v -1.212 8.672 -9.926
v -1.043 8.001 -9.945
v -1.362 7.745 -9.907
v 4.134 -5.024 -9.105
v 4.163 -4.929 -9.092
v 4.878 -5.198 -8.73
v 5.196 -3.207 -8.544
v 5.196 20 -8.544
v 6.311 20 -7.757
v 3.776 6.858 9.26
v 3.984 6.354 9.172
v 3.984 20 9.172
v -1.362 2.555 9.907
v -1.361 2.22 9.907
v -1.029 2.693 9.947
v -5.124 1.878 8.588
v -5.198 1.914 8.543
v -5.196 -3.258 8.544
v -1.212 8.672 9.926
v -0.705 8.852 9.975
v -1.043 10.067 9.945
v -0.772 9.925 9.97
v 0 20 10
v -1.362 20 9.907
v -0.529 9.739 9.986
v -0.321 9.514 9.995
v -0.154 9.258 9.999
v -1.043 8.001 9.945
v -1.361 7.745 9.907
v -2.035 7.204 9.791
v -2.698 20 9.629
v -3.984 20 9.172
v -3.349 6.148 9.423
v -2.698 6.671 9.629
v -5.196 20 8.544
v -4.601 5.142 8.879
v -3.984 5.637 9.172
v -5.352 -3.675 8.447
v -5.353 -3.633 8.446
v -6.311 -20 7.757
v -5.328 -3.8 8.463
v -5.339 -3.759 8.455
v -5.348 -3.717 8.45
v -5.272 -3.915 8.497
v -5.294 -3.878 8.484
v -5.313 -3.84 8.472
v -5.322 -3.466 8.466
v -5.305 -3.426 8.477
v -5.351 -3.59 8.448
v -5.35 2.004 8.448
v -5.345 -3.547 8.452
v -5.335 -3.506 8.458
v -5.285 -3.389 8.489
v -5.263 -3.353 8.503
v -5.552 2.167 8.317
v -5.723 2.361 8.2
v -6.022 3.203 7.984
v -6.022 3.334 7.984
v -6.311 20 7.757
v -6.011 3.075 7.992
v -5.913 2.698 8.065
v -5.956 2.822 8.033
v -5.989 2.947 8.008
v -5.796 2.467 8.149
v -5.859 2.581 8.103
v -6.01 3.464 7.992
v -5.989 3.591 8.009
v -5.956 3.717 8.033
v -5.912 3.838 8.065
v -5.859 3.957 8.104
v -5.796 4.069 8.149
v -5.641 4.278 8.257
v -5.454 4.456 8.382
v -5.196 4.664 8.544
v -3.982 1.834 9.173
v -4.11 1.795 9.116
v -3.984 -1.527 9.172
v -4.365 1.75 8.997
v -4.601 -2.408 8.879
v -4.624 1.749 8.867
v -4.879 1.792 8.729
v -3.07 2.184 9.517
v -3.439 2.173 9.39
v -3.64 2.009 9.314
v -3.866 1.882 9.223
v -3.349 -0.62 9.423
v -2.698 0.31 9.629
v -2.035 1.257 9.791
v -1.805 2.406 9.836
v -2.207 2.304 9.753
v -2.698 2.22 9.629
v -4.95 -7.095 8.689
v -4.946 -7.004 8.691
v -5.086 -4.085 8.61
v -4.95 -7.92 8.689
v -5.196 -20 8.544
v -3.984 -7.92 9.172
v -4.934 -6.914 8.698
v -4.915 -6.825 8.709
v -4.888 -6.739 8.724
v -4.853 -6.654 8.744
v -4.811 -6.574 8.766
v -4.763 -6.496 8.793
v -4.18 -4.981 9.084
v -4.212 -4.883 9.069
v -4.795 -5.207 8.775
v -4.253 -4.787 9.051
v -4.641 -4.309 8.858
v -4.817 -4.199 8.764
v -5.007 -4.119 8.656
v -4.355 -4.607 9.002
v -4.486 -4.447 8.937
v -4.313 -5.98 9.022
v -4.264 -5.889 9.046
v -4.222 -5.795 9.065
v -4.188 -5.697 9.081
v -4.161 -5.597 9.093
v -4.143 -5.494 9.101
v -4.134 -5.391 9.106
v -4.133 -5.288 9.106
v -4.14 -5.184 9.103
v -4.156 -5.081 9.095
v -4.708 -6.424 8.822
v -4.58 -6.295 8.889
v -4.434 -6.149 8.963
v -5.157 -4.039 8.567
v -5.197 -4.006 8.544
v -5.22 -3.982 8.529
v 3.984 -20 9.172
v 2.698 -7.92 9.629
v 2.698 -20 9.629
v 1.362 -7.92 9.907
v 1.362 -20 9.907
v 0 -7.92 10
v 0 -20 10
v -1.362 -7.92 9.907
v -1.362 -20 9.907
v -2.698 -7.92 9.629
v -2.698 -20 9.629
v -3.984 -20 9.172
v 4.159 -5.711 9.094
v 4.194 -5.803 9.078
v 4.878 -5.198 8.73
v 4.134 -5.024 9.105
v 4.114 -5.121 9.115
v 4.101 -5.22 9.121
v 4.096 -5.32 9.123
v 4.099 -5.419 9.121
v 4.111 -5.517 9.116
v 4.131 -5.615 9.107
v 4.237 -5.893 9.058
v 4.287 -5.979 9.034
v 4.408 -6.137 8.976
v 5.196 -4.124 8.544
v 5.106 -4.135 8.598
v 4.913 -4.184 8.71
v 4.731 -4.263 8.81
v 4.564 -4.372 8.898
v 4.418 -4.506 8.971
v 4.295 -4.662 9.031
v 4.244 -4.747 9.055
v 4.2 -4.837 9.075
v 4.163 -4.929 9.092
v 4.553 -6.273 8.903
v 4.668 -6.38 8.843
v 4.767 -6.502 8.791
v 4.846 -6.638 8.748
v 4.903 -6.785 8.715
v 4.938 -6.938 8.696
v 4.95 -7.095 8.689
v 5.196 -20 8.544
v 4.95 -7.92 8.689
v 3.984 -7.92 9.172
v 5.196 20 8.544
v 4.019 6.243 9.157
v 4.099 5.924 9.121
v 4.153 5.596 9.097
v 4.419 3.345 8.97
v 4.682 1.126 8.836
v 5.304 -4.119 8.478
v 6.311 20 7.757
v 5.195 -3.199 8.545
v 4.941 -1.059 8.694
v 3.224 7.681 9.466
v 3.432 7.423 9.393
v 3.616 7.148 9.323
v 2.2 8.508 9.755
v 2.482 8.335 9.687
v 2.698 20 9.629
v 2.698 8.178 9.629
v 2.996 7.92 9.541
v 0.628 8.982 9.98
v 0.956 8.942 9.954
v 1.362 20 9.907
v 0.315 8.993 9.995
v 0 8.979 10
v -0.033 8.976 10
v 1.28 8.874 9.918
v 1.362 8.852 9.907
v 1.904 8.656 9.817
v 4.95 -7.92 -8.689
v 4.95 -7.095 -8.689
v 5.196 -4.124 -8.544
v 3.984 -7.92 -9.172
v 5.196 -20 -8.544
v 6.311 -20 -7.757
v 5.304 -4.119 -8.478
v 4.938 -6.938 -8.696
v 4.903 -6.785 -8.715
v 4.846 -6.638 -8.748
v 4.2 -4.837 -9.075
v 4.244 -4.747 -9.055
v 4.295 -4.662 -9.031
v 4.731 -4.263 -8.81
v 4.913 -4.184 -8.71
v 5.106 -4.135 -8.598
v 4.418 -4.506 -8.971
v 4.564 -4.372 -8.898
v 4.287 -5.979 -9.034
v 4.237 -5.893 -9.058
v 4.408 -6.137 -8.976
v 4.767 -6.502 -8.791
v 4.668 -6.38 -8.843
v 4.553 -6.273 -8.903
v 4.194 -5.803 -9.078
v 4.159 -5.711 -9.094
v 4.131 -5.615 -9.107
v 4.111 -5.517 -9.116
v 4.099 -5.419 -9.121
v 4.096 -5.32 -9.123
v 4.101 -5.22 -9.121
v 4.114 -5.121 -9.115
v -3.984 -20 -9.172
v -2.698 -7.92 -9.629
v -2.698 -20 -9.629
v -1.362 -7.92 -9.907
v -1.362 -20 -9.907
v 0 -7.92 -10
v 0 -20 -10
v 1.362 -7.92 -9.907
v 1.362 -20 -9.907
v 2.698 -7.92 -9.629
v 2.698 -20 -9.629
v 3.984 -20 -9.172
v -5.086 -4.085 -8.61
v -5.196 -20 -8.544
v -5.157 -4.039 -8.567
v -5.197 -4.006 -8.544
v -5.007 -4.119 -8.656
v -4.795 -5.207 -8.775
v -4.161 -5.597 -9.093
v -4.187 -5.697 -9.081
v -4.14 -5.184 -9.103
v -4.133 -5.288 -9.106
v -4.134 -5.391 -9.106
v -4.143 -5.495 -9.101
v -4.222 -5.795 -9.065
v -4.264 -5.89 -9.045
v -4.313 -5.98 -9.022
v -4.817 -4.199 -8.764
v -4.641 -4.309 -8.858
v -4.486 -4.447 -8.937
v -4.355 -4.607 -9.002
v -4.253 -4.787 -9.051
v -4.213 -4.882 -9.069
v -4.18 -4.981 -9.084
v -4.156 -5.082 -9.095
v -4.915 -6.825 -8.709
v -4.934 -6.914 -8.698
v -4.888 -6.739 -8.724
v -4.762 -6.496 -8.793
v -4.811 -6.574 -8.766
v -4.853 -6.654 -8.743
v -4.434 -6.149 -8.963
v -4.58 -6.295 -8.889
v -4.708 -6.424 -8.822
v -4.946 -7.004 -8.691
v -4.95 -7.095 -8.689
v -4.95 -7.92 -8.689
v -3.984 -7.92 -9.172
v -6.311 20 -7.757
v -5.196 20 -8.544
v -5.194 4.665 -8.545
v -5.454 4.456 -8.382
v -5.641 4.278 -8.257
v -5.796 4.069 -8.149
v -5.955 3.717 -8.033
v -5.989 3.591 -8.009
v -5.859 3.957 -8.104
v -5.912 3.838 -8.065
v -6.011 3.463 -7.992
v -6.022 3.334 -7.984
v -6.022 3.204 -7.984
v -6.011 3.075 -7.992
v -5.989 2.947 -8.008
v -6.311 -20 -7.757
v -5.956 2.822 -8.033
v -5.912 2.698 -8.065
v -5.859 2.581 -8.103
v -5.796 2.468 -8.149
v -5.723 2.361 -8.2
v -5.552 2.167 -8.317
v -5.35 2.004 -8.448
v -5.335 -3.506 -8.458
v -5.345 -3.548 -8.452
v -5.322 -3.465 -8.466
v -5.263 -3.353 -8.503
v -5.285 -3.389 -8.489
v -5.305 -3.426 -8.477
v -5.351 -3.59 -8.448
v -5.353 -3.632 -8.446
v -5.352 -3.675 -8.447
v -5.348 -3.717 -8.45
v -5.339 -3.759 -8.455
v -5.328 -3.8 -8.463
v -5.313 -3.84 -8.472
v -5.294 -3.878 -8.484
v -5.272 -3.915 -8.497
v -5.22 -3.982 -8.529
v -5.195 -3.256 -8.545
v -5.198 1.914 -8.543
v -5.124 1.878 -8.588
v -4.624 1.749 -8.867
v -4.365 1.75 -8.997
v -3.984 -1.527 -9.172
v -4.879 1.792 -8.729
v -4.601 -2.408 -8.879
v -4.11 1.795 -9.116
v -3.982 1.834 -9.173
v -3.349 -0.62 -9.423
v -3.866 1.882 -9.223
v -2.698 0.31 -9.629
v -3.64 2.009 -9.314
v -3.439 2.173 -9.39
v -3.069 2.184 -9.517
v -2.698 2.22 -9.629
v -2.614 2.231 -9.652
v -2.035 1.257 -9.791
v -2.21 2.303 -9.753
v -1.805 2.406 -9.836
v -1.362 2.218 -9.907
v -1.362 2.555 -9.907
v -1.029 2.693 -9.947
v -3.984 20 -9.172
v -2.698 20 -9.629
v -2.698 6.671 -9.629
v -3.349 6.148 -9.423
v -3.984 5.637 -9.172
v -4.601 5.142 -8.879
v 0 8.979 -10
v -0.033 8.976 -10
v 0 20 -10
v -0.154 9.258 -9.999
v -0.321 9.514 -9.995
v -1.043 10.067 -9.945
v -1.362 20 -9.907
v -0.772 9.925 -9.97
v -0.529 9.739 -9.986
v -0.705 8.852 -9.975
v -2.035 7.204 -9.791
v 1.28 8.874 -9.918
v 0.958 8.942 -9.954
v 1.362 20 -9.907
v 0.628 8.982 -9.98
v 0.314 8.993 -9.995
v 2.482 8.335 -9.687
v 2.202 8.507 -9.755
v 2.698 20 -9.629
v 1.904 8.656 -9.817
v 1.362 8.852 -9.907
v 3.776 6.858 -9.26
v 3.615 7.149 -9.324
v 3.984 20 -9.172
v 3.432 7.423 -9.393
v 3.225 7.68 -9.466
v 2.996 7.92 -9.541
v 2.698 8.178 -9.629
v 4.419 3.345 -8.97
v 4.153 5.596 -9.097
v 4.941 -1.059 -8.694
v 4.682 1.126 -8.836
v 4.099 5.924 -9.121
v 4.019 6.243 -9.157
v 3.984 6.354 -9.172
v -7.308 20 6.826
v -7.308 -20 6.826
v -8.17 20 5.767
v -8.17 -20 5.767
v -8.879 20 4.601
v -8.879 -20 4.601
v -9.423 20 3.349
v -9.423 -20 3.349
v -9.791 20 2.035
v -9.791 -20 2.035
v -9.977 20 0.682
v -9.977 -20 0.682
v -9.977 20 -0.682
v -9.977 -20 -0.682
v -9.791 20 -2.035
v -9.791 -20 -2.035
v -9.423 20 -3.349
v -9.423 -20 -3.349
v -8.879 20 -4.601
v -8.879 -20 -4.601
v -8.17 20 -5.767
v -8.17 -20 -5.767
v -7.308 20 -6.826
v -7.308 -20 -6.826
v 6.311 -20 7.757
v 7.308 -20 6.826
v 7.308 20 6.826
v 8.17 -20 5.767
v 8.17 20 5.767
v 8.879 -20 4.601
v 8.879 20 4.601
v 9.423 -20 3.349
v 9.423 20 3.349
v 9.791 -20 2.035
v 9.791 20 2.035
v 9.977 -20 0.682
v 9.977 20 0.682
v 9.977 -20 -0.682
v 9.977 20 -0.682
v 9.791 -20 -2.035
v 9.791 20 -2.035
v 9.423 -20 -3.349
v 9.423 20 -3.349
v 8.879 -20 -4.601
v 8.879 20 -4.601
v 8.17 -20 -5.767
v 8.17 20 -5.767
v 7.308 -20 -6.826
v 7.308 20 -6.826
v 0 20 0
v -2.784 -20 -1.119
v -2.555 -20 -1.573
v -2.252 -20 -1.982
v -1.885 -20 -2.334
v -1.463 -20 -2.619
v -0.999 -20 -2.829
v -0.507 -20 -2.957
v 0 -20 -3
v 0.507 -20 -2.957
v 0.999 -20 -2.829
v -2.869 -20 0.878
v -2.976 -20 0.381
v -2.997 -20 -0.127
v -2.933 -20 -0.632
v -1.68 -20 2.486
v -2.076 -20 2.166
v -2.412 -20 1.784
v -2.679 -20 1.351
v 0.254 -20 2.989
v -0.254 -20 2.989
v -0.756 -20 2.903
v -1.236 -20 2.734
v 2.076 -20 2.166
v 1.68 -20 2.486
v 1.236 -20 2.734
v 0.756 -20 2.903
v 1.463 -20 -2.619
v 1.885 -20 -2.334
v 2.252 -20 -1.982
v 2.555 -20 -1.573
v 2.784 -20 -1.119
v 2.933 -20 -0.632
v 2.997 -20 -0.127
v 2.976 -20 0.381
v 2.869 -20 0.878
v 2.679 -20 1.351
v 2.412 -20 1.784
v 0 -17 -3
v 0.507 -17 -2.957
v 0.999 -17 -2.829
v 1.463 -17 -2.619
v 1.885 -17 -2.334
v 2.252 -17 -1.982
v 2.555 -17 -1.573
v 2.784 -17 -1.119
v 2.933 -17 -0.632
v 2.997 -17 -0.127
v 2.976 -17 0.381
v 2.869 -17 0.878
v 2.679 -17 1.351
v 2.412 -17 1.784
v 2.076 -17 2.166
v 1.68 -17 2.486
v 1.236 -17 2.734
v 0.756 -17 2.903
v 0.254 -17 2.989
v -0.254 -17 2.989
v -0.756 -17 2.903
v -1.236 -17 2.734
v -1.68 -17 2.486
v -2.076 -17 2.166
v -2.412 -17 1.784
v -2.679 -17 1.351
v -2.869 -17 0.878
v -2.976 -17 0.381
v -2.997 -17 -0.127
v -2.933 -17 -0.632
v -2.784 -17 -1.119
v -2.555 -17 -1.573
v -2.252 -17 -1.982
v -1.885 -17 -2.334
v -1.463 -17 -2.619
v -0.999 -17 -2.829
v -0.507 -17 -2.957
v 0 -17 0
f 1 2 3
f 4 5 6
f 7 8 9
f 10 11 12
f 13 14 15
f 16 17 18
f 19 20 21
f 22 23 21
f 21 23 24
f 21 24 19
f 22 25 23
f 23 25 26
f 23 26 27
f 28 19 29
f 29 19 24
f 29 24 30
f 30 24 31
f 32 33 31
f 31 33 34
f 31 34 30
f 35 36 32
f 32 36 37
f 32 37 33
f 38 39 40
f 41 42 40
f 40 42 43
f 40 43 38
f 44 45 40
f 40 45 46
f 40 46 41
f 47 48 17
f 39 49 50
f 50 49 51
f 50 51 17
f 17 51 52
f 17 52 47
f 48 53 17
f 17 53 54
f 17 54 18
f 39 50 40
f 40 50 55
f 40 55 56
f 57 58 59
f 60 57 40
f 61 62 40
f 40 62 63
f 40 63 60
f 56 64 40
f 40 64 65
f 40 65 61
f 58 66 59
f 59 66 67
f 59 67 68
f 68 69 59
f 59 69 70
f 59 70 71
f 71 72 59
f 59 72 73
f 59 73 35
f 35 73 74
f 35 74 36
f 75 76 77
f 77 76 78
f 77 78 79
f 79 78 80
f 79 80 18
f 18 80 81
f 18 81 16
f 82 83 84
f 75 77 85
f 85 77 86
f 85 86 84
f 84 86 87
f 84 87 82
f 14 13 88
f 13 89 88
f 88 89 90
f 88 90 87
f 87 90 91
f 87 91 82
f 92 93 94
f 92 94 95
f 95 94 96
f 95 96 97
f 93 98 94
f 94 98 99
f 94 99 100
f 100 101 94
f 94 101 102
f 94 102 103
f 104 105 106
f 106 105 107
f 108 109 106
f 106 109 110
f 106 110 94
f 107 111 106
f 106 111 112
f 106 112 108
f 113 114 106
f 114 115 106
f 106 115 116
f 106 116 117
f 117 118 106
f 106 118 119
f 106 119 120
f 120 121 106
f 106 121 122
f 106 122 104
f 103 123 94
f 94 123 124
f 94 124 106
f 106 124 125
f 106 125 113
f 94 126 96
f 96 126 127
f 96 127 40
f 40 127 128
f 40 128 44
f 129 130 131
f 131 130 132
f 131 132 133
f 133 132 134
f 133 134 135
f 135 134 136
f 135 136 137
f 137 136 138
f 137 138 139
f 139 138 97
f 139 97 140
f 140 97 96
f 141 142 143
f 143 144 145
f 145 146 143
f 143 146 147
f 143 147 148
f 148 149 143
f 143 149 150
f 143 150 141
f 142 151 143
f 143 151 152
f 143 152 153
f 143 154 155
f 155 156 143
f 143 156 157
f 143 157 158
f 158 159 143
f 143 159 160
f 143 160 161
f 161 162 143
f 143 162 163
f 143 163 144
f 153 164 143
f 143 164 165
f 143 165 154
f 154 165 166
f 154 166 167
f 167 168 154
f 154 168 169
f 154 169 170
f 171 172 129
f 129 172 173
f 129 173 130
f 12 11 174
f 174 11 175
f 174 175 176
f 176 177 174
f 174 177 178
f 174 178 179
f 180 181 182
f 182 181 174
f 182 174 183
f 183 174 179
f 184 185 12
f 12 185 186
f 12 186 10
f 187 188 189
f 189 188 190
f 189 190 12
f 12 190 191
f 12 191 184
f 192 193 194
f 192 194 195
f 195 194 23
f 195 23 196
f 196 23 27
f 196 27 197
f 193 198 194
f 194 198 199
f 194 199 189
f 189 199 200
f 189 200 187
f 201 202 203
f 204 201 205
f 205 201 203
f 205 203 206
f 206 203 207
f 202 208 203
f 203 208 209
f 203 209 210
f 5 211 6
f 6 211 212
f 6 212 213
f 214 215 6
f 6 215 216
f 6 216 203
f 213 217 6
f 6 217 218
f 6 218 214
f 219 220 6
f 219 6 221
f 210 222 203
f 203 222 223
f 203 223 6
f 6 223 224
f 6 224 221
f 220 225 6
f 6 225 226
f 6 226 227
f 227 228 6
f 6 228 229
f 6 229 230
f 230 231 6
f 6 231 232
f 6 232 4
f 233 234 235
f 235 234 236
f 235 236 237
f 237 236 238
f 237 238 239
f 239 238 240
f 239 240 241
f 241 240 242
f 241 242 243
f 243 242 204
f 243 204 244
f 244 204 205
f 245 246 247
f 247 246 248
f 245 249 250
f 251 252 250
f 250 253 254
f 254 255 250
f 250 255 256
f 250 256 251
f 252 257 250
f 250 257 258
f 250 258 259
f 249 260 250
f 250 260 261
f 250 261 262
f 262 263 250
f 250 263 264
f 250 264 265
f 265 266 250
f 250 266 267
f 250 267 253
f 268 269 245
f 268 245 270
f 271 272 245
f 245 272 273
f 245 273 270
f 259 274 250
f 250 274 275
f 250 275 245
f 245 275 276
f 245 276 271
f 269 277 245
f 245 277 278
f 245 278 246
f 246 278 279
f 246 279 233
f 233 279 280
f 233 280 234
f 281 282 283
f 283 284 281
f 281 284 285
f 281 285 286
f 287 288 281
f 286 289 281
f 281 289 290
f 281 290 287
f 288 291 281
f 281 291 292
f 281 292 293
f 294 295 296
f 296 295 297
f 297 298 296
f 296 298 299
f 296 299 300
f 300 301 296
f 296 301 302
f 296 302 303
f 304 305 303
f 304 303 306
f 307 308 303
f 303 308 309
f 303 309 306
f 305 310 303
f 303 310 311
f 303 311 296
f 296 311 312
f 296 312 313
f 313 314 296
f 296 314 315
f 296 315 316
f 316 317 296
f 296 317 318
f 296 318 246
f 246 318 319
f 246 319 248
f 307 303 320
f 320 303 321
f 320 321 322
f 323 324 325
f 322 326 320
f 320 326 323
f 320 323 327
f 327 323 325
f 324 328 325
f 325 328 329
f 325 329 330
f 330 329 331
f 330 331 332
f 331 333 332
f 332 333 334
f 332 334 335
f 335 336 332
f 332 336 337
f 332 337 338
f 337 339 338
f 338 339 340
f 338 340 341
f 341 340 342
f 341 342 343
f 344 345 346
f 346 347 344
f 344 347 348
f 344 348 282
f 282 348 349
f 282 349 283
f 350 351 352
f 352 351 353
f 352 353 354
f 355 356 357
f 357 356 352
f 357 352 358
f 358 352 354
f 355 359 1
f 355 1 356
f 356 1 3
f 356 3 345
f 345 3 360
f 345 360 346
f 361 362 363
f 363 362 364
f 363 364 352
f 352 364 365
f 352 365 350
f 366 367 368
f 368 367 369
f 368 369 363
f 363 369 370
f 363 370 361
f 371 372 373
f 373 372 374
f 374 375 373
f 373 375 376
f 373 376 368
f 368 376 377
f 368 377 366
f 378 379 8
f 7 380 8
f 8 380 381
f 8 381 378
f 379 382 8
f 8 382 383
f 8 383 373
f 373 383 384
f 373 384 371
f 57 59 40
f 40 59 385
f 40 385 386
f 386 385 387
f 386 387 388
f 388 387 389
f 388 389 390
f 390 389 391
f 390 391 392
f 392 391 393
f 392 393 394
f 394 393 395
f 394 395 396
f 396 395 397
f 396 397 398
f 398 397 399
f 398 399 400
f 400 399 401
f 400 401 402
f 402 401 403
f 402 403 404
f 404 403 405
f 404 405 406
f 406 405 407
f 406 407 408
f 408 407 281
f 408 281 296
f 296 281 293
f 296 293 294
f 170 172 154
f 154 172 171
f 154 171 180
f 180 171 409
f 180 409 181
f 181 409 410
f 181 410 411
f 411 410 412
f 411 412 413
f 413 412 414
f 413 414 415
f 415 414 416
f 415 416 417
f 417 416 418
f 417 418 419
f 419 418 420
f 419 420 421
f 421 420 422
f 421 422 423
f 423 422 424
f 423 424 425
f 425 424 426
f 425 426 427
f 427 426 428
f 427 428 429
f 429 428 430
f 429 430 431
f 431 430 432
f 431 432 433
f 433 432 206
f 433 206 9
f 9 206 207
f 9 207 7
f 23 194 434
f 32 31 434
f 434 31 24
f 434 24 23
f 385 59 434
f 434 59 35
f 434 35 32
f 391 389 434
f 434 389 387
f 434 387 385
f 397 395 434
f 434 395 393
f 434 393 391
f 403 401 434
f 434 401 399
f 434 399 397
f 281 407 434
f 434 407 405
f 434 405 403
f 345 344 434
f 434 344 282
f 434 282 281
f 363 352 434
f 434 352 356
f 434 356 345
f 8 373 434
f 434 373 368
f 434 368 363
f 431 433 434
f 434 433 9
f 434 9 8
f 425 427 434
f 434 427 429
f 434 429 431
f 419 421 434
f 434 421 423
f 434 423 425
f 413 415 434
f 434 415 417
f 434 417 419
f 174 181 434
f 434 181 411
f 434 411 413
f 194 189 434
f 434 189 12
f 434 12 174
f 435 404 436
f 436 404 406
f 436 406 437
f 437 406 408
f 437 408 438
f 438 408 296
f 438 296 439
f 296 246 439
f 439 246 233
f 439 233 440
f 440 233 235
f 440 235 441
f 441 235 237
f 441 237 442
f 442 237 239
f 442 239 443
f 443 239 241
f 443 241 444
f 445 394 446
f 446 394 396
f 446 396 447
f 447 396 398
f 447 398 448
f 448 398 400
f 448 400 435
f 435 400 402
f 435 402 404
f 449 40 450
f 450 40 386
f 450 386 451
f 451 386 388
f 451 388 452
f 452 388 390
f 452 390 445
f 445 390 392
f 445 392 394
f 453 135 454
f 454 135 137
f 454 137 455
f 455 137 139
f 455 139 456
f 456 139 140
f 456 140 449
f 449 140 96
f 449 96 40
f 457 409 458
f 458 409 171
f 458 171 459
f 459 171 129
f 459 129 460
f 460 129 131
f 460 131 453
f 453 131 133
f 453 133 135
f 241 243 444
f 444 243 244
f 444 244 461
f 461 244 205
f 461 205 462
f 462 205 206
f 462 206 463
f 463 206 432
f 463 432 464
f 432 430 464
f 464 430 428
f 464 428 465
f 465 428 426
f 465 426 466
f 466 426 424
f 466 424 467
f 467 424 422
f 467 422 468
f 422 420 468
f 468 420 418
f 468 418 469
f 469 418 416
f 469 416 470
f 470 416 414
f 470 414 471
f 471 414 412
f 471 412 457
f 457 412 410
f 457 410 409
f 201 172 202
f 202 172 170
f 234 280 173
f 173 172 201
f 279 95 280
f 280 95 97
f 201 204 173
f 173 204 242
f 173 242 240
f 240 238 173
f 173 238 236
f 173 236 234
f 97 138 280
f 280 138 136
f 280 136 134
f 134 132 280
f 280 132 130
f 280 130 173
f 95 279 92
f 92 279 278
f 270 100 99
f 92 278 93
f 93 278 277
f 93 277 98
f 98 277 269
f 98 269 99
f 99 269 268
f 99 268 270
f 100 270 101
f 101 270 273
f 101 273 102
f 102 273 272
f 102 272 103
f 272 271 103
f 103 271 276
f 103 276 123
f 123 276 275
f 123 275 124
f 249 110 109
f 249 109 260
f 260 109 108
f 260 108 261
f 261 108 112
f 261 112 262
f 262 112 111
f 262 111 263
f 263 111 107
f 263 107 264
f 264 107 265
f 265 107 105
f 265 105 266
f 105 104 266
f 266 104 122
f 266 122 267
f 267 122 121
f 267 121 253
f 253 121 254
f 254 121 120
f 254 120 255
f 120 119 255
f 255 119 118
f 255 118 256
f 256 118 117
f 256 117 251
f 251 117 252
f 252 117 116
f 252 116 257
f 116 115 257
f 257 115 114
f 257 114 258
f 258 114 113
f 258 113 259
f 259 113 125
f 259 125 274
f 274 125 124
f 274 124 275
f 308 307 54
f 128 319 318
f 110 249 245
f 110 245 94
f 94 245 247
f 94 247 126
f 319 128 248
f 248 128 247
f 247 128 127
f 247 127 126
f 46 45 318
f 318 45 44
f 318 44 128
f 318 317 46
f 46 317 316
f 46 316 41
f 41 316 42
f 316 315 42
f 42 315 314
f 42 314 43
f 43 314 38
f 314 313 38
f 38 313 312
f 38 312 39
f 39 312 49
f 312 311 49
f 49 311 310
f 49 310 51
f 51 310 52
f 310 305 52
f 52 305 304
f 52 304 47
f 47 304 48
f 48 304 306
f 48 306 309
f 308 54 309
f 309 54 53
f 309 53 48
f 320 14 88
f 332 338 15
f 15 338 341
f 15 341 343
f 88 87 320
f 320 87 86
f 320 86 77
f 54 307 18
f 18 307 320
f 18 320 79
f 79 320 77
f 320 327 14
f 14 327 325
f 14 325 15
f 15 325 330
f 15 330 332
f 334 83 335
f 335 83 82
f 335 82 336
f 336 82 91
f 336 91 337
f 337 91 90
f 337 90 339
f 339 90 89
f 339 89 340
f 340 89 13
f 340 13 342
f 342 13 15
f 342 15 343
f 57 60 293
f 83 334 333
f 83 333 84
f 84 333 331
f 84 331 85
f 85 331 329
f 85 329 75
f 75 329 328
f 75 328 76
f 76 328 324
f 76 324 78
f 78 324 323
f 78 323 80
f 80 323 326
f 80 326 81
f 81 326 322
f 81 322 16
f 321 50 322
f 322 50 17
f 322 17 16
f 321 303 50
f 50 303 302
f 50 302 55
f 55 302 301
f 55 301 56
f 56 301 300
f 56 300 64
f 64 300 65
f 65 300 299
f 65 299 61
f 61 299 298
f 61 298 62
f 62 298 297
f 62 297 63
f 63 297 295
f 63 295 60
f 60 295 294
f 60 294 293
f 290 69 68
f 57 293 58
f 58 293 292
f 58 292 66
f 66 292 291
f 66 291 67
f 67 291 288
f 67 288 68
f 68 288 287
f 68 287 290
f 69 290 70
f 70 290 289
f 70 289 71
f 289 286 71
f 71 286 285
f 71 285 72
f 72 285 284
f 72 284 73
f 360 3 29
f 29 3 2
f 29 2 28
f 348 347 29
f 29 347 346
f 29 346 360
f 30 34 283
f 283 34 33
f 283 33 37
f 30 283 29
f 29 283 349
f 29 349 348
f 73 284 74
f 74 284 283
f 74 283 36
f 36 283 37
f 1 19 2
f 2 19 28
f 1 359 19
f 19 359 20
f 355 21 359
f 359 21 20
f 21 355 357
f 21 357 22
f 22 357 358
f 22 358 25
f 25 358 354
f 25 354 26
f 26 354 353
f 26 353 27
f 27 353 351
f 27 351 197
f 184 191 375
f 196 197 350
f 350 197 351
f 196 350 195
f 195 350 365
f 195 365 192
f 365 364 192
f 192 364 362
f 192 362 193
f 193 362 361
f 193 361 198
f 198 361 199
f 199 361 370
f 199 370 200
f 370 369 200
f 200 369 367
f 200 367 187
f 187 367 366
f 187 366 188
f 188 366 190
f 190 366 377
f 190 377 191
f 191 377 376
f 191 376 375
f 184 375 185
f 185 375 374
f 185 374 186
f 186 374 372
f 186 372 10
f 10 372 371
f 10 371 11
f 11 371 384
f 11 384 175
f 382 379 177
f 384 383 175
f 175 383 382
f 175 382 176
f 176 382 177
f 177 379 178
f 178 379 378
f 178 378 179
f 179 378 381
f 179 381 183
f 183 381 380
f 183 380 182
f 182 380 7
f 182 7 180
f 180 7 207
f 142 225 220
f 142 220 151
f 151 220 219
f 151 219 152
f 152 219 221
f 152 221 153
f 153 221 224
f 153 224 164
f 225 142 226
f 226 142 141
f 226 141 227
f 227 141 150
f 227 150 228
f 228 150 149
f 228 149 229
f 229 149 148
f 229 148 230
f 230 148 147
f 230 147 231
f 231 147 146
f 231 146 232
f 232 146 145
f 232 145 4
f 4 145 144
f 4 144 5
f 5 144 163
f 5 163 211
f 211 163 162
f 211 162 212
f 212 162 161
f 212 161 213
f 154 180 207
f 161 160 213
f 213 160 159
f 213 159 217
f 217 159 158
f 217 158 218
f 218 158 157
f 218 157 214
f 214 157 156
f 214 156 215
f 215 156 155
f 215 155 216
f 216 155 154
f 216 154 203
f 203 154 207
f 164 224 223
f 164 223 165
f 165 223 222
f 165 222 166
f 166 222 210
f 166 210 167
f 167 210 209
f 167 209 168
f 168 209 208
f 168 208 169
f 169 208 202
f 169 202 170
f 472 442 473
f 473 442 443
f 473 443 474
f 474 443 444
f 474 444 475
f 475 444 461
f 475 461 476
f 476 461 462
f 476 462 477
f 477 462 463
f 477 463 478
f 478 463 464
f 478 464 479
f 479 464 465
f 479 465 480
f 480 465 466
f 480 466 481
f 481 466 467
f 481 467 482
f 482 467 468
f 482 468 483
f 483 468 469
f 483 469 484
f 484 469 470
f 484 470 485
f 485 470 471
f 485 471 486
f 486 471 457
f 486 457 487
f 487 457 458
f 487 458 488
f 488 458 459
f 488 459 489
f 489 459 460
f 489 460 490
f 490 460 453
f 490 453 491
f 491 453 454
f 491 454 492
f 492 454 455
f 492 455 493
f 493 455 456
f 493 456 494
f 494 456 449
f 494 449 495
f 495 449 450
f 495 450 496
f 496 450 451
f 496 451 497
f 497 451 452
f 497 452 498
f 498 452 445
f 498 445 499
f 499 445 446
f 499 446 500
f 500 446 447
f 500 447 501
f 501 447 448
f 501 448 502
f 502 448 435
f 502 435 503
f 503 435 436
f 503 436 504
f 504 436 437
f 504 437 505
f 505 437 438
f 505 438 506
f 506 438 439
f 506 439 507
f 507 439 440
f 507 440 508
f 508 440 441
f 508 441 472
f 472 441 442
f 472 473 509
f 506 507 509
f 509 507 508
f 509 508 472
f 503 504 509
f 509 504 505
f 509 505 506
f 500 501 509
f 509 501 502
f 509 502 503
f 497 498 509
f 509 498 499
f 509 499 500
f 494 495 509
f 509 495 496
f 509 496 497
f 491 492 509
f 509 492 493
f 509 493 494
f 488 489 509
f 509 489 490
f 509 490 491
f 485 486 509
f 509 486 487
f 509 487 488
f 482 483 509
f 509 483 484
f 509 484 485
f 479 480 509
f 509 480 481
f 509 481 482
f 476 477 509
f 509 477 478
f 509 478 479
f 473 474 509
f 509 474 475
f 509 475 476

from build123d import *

# Parameters (mm, degrees)
SKETCH2_R               = 10
BOSS_EXTRUDE1_DEPTH     = 20
CUT_EXTRUDE1_DEPTH      = 11
CUT_EXTRUDE1_DEPTH_BACK = 11
SKETCH4_R               = 3
CUT_EXTRUDE2_DEPTH      = 3


with BuildPart() as part:
    # Sketch2 → Boss-Extrude1 (new body, symmetric)
    with BuildSketch(Plane(origin=(0, 0, 0), x_dir=(1, 0, 0), z_dir=(0, 1, 0))):
        Circle(SKETCH2_R)
    extrude(amount=BOSS_EXTRUDE1_DEPTH, both=True)

    # Sketch3 → Cut-Extrude1 (cut, two sides)
    with BuildSketch(Plane.XY) as cut_extrude1_sk:
        with BuildLine():
            Line((-4.95, -7.92), (4.95, -7.92))
            Line((4.95, -7.92), (4.95, -7.095))
            ThreePointArc((4.95, -7.095), (4.845529135, -6.638488486), (4.552912235, -6.272848946))
            ThreePointArc((4.552912235, -6.272848946), (4.163263898, -4.929032869), (5.303905651, -4.118721901))
            Line((5.303905651, -4.118721901), (4.152601488, 5.595942007))
            ThreePointArc((4.152601488, 5.595942007), (2.748128038, 8.13841183), (-0.032970708, 8.976378553))
            ThreePointArc((-0.032970708, 8.976378553), (-0.420174759, 9.631170394), (-1.043370943, 10.067410979))
            Line((-1.043370943, 10.067410979), (-0.704768531, 8.852119124))
            ThreePointArc((-0.704768531, 8.852119124), (-0.961731099, 8.770731362), (-1.212370482, 8.671566707))
            Line((-1.212370482, 8.671566707), (-1.043370943, 8.000640714))
            Line((-1.043370943, 8.000640714), (-5.45370194, 4.456357119))
            ThreePointArc((-5.45370194, 4.456357119), (-5.641905535, 2.260075199), (-3.43929894, 2.172902623))
            ThreePointArc((-3.43929894, 2.172902623), (-2.20642224, 2.304167352), (-1.029214799, 2.693266345))
            Line((-1.029214799, 2.693266345), (-5.262567741, -3.352870715))
            ThreePointArc((-5.262567741, -3.352870715), (-5.32769839, -3.799977219), (-5.007467138, -4.118721901))
            ThreePointArc((-5.007467138, -4.118721901), (-4.156142001, -5.081814751), (-4.58020402, -6.295270037))
            ThreePointArc((-4.58020402, -6.295270037), (-4.853076089, -6.654455711), (-4.95, -7.095))
            Line((-4.95, -7.095), (-4.95, -7.92))
        make_face()
    extrude(amount=CUT_EXTRUDE1_DEPTH, mode=Mode.SUBTRACT)
    extrude(cut_extrude1_sk.sketch, amount=-CUT_EXTRUDE1_DEPTH_BACK, mode=Mode.SUBTRACT)

    # Sketch4 → Cut-Extrude2 (cut)
    with BuildSketch(Plane(origin=(0, -20, 0), x_dir=(-1, 0, 0), z_dir=(0, -1, 0))):
        Circle(SKETCH4_R)
    extrude(amount=-CUT_EXTRUDE2_DEPTH, mode=Mode.SUBTRACT)


solid = part.part
